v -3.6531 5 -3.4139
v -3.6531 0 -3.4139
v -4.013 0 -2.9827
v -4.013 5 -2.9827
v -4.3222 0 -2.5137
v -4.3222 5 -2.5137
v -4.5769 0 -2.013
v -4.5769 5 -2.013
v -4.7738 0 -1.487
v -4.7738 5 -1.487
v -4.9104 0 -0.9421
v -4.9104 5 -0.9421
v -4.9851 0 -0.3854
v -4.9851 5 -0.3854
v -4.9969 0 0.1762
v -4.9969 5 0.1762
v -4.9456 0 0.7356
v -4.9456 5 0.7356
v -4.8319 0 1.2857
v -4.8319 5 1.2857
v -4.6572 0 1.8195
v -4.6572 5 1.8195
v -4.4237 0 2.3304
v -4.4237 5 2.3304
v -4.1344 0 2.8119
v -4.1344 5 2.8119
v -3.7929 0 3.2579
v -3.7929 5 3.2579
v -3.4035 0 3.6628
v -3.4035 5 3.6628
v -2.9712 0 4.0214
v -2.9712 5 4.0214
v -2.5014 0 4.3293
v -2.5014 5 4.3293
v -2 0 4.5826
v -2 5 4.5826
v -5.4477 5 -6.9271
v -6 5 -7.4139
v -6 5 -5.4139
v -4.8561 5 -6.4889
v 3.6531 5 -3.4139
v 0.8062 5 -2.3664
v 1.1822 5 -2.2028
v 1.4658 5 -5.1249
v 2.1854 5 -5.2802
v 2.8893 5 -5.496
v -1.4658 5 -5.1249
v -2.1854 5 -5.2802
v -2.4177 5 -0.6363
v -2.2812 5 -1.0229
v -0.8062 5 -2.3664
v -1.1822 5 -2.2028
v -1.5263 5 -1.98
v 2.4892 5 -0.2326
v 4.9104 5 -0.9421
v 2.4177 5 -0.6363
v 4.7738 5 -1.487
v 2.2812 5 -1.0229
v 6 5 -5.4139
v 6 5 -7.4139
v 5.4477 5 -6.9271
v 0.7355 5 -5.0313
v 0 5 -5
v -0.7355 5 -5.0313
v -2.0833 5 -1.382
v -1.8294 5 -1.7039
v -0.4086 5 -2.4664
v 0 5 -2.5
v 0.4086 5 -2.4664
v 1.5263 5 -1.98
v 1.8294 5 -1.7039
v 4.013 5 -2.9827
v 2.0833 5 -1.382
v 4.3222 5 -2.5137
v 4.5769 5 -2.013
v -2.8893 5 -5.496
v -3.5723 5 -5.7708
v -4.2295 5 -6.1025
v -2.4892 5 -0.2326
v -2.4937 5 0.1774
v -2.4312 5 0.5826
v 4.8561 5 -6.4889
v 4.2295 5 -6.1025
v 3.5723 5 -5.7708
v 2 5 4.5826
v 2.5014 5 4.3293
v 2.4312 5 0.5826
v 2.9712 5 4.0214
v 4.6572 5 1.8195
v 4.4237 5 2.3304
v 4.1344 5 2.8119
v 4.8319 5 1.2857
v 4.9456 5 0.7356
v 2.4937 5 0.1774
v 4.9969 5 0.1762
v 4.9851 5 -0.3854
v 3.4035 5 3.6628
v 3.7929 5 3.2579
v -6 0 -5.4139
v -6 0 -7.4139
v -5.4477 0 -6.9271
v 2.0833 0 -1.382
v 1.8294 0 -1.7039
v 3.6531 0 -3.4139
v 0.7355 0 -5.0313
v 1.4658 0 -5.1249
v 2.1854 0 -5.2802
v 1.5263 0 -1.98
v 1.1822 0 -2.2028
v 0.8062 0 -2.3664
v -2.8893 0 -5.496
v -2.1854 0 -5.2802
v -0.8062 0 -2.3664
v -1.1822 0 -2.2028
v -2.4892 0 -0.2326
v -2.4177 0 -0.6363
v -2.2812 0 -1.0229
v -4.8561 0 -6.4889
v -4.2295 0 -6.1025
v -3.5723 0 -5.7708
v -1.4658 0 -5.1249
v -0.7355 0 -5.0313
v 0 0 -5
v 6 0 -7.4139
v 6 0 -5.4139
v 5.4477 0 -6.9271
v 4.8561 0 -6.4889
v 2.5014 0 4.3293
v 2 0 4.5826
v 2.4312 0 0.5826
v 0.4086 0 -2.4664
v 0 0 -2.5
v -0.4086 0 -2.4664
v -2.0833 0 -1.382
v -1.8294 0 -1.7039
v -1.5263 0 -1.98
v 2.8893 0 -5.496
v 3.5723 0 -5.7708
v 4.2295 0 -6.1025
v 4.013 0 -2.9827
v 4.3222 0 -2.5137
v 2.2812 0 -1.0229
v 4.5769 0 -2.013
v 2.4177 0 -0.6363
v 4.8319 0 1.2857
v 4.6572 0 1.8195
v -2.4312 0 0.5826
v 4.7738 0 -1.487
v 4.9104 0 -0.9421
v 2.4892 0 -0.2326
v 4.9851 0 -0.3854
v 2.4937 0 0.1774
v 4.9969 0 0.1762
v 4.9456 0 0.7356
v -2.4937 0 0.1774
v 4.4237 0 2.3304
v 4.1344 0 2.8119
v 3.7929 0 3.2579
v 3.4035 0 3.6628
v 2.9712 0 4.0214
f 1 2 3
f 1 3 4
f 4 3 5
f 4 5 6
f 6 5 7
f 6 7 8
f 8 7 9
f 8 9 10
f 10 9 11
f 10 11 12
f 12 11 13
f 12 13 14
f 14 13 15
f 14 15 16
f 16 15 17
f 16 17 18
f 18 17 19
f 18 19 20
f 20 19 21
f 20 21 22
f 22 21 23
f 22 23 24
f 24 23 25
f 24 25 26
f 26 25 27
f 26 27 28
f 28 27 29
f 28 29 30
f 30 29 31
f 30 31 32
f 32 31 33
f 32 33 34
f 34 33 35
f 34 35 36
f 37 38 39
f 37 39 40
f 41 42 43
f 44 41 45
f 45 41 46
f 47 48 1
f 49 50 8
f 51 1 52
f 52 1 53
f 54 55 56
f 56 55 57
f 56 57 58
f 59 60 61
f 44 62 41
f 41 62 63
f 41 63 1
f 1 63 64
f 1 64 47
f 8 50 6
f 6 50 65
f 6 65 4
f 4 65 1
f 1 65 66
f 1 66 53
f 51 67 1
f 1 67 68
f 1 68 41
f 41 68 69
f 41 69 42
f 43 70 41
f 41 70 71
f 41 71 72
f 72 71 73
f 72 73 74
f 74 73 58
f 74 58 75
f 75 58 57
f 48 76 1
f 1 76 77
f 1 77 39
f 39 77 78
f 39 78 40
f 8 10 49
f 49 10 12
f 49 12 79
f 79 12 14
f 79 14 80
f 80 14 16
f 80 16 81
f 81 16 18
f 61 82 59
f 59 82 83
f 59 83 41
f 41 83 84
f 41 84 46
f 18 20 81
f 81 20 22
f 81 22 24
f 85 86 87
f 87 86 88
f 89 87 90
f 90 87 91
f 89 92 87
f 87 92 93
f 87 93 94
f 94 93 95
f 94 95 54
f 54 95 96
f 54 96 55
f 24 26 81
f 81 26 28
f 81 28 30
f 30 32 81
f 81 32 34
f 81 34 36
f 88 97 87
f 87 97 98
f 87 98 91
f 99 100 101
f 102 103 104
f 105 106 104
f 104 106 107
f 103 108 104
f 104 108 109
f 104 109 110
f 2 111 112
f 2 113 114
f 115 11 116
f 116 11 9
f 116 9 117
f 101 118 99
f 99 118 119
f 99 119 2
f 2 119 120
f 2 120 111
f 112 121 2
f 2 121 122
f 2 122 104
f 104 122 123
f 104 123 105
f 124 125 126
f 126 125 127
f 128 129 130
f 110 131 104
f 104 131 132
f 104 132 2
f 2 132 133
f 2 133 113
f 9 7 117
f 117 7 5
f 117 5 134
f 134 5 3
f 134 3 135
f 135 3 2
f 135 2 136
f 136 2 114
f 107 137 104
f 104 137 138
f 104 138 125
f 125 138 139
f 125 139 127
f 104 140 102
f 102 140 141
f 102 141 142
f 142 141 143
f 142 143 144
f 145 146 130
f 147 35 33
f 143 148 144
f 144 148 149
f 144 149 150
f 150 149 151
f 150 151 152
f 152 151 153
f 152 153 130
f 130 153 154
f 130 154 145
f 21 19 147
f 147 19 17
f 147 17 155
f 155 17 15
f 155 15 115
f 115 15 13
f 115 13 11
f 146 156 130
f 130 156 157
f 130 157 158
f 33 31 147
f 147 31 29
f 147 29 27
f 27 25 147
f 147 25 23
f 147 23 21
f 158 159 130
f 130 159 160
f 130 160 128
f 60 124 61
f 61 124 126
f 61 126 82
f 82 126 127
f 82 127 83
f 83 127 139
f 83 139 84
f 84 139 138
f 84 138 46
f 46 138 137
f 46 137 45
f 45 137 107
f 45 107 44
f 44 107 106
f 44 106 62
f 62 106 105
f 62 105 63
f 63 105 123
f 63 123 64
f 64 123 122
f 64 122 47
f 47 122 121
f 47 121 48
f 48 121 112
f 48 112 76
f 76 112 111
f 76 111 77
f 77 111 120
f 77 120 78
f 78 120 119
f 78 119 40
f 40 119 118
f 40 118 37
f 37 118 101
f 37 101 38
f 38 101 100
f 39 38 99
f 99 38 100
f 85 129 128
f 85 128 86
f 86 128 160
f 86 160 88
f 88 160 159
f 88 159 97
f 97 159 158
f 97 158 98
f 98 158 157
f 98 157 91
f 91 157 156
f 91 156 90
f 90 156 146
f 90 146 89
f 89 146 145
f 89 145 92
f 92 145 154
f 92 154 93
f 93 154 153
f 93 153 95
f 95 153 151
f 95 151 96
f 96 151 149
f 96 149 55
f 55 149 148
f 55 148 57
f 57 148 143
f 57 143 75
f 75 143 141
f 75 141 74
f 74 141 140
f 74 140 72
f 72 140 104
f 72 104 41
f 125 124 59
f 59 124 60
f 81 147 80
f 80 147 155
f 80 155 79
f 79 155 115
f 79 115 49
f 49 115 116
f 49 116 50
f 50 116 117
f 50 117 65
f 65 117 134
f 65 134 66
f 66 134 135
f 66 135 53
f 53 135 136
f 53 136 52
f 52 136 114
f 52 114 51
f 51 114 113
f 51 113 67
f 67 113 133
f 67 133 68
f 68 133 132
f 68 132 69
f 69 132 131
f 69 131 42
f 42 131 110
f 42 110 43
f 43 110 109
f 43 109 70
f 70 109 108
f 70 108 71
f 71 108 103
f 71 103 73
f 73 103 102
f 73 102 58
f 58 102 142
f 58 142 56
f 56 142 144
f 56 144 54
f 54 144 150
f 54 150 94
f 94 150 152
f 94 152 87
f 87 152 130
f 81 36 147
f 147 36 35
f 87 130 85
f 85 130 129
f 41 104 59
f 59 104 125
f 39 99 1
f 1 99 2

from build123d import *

# Parameters (mm, degrees)
CROQUIS1_R              = 2.5
SALIENTE_EXTRUIR1_DEPTH = 5
CORTAR_EXTRUIR1_START   = -10
CORTAR_EXTRUIR1_DEPTH   = 10
CORTAR_EXTRUIR2_DEPTH   = 10


with BuildPart() as part:
    # Croquis1 → Saliente-Extruir1 (new body)
    with BuildSketch(Plane(origin=(0, 0, 0), x_dir=(1, 0, 0), z_dir=(0, 1, 0))):
        with BuildLine():
            Line((-6, 7.413947971), (-6, 3.413947971))
            Line((-6, 3.413947971), (-3.653075314, 3.413947971))
            ThreePointArc((-3.653075314, 3.413947971), (0, -5), (3.653075314, 3.413947971))
            Line((3.653075314, 3.413947971), (6, 3.413947971))
            Line((6, 3.413947971), (6, 7.413947971))
            ThreePointArc((6, 7.413947971), (0, 5), (-6, 7.413947971))
        make_face()
        with Locations(Location((0, 0, 0), (0, 0, 270))):
            Circle(CROQUIS1_R, mode=Mode.SUBTRACT)
    extrude(amount=SALIENTE_EXTRUIR1_DEPTH)

    # Croquis2 → Cortar-Extruir1 (cut)
    with BuildSketch(Plane(origin=(0, 5, 0), x_dir=(1, 0, 0), z_dir=(0, 1, 0)).offset(CORTAR_EXTRUIR1_START)):
        with BuildLine():
            ThreePointArc((2.4311737, -0.582575695), (1.548153862, -1.96296195), (0, -2.5))
            Line((0, -2.5), (0, -5))
            ThreePointArc((0, -5), (1.021548218, -4.894531565), (2, -4.582575695))
            Line((2, -4.582575695), (2.4311737, -0.582575695))
        make_face()
        with BuildLine():
            Line((0, -5), (0, -2.5))
            ThreePointArc((0, -2.5), (-1.548153862, -1.96296195), (-2.4311737, -0.582575695))
            Line((-2.4311737, -0.582575695), (-2, -4.582575695))
            ThreePointArc((-2, -4.582575695), (-1.021548218, -4.894531565), (0, -5))
        make_face()
    extrude(amount=CORTAR_EXTRUIR1_DEPTH, mode=Mode.SUBTRACT)

    # Croquis3 → Cortar-Extruir2 (cut)
    with BuildSketch(Plane(origin=(0, 5, 0), x_dir=(1, 0, 0), z_dir=(0, 1, 0))):
        Polygon((3.653075314, 3.413947971), (6, 5.413947971), (6, 3.413947971), align=None)
        Polygon((-3.653075314, 3.413947971), (-6, 5.413947971), (-6, 3.413947971), align=None)
    extrude(amount=-CORTAR_EXTRUIR2_DEPTH, mode=Mode.SUBTRACT)


solid = part.part
